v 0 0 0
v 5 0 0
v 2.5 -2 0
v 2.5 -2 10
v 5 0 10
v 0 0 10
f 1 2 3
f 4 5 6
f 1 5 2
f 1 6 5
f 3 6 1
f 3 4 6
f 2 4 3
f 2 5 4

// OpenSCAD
module angle_iron(height, width, depth, angle) {
  linear_extrude(height = height)
  polygon(points = [
    [0, 0],
    [width/2, -depth * tan(angle)],
    [width, 0]
  ]);
}

angle_iron(height = 10, width = 5, depth = 2, angle = 45);
